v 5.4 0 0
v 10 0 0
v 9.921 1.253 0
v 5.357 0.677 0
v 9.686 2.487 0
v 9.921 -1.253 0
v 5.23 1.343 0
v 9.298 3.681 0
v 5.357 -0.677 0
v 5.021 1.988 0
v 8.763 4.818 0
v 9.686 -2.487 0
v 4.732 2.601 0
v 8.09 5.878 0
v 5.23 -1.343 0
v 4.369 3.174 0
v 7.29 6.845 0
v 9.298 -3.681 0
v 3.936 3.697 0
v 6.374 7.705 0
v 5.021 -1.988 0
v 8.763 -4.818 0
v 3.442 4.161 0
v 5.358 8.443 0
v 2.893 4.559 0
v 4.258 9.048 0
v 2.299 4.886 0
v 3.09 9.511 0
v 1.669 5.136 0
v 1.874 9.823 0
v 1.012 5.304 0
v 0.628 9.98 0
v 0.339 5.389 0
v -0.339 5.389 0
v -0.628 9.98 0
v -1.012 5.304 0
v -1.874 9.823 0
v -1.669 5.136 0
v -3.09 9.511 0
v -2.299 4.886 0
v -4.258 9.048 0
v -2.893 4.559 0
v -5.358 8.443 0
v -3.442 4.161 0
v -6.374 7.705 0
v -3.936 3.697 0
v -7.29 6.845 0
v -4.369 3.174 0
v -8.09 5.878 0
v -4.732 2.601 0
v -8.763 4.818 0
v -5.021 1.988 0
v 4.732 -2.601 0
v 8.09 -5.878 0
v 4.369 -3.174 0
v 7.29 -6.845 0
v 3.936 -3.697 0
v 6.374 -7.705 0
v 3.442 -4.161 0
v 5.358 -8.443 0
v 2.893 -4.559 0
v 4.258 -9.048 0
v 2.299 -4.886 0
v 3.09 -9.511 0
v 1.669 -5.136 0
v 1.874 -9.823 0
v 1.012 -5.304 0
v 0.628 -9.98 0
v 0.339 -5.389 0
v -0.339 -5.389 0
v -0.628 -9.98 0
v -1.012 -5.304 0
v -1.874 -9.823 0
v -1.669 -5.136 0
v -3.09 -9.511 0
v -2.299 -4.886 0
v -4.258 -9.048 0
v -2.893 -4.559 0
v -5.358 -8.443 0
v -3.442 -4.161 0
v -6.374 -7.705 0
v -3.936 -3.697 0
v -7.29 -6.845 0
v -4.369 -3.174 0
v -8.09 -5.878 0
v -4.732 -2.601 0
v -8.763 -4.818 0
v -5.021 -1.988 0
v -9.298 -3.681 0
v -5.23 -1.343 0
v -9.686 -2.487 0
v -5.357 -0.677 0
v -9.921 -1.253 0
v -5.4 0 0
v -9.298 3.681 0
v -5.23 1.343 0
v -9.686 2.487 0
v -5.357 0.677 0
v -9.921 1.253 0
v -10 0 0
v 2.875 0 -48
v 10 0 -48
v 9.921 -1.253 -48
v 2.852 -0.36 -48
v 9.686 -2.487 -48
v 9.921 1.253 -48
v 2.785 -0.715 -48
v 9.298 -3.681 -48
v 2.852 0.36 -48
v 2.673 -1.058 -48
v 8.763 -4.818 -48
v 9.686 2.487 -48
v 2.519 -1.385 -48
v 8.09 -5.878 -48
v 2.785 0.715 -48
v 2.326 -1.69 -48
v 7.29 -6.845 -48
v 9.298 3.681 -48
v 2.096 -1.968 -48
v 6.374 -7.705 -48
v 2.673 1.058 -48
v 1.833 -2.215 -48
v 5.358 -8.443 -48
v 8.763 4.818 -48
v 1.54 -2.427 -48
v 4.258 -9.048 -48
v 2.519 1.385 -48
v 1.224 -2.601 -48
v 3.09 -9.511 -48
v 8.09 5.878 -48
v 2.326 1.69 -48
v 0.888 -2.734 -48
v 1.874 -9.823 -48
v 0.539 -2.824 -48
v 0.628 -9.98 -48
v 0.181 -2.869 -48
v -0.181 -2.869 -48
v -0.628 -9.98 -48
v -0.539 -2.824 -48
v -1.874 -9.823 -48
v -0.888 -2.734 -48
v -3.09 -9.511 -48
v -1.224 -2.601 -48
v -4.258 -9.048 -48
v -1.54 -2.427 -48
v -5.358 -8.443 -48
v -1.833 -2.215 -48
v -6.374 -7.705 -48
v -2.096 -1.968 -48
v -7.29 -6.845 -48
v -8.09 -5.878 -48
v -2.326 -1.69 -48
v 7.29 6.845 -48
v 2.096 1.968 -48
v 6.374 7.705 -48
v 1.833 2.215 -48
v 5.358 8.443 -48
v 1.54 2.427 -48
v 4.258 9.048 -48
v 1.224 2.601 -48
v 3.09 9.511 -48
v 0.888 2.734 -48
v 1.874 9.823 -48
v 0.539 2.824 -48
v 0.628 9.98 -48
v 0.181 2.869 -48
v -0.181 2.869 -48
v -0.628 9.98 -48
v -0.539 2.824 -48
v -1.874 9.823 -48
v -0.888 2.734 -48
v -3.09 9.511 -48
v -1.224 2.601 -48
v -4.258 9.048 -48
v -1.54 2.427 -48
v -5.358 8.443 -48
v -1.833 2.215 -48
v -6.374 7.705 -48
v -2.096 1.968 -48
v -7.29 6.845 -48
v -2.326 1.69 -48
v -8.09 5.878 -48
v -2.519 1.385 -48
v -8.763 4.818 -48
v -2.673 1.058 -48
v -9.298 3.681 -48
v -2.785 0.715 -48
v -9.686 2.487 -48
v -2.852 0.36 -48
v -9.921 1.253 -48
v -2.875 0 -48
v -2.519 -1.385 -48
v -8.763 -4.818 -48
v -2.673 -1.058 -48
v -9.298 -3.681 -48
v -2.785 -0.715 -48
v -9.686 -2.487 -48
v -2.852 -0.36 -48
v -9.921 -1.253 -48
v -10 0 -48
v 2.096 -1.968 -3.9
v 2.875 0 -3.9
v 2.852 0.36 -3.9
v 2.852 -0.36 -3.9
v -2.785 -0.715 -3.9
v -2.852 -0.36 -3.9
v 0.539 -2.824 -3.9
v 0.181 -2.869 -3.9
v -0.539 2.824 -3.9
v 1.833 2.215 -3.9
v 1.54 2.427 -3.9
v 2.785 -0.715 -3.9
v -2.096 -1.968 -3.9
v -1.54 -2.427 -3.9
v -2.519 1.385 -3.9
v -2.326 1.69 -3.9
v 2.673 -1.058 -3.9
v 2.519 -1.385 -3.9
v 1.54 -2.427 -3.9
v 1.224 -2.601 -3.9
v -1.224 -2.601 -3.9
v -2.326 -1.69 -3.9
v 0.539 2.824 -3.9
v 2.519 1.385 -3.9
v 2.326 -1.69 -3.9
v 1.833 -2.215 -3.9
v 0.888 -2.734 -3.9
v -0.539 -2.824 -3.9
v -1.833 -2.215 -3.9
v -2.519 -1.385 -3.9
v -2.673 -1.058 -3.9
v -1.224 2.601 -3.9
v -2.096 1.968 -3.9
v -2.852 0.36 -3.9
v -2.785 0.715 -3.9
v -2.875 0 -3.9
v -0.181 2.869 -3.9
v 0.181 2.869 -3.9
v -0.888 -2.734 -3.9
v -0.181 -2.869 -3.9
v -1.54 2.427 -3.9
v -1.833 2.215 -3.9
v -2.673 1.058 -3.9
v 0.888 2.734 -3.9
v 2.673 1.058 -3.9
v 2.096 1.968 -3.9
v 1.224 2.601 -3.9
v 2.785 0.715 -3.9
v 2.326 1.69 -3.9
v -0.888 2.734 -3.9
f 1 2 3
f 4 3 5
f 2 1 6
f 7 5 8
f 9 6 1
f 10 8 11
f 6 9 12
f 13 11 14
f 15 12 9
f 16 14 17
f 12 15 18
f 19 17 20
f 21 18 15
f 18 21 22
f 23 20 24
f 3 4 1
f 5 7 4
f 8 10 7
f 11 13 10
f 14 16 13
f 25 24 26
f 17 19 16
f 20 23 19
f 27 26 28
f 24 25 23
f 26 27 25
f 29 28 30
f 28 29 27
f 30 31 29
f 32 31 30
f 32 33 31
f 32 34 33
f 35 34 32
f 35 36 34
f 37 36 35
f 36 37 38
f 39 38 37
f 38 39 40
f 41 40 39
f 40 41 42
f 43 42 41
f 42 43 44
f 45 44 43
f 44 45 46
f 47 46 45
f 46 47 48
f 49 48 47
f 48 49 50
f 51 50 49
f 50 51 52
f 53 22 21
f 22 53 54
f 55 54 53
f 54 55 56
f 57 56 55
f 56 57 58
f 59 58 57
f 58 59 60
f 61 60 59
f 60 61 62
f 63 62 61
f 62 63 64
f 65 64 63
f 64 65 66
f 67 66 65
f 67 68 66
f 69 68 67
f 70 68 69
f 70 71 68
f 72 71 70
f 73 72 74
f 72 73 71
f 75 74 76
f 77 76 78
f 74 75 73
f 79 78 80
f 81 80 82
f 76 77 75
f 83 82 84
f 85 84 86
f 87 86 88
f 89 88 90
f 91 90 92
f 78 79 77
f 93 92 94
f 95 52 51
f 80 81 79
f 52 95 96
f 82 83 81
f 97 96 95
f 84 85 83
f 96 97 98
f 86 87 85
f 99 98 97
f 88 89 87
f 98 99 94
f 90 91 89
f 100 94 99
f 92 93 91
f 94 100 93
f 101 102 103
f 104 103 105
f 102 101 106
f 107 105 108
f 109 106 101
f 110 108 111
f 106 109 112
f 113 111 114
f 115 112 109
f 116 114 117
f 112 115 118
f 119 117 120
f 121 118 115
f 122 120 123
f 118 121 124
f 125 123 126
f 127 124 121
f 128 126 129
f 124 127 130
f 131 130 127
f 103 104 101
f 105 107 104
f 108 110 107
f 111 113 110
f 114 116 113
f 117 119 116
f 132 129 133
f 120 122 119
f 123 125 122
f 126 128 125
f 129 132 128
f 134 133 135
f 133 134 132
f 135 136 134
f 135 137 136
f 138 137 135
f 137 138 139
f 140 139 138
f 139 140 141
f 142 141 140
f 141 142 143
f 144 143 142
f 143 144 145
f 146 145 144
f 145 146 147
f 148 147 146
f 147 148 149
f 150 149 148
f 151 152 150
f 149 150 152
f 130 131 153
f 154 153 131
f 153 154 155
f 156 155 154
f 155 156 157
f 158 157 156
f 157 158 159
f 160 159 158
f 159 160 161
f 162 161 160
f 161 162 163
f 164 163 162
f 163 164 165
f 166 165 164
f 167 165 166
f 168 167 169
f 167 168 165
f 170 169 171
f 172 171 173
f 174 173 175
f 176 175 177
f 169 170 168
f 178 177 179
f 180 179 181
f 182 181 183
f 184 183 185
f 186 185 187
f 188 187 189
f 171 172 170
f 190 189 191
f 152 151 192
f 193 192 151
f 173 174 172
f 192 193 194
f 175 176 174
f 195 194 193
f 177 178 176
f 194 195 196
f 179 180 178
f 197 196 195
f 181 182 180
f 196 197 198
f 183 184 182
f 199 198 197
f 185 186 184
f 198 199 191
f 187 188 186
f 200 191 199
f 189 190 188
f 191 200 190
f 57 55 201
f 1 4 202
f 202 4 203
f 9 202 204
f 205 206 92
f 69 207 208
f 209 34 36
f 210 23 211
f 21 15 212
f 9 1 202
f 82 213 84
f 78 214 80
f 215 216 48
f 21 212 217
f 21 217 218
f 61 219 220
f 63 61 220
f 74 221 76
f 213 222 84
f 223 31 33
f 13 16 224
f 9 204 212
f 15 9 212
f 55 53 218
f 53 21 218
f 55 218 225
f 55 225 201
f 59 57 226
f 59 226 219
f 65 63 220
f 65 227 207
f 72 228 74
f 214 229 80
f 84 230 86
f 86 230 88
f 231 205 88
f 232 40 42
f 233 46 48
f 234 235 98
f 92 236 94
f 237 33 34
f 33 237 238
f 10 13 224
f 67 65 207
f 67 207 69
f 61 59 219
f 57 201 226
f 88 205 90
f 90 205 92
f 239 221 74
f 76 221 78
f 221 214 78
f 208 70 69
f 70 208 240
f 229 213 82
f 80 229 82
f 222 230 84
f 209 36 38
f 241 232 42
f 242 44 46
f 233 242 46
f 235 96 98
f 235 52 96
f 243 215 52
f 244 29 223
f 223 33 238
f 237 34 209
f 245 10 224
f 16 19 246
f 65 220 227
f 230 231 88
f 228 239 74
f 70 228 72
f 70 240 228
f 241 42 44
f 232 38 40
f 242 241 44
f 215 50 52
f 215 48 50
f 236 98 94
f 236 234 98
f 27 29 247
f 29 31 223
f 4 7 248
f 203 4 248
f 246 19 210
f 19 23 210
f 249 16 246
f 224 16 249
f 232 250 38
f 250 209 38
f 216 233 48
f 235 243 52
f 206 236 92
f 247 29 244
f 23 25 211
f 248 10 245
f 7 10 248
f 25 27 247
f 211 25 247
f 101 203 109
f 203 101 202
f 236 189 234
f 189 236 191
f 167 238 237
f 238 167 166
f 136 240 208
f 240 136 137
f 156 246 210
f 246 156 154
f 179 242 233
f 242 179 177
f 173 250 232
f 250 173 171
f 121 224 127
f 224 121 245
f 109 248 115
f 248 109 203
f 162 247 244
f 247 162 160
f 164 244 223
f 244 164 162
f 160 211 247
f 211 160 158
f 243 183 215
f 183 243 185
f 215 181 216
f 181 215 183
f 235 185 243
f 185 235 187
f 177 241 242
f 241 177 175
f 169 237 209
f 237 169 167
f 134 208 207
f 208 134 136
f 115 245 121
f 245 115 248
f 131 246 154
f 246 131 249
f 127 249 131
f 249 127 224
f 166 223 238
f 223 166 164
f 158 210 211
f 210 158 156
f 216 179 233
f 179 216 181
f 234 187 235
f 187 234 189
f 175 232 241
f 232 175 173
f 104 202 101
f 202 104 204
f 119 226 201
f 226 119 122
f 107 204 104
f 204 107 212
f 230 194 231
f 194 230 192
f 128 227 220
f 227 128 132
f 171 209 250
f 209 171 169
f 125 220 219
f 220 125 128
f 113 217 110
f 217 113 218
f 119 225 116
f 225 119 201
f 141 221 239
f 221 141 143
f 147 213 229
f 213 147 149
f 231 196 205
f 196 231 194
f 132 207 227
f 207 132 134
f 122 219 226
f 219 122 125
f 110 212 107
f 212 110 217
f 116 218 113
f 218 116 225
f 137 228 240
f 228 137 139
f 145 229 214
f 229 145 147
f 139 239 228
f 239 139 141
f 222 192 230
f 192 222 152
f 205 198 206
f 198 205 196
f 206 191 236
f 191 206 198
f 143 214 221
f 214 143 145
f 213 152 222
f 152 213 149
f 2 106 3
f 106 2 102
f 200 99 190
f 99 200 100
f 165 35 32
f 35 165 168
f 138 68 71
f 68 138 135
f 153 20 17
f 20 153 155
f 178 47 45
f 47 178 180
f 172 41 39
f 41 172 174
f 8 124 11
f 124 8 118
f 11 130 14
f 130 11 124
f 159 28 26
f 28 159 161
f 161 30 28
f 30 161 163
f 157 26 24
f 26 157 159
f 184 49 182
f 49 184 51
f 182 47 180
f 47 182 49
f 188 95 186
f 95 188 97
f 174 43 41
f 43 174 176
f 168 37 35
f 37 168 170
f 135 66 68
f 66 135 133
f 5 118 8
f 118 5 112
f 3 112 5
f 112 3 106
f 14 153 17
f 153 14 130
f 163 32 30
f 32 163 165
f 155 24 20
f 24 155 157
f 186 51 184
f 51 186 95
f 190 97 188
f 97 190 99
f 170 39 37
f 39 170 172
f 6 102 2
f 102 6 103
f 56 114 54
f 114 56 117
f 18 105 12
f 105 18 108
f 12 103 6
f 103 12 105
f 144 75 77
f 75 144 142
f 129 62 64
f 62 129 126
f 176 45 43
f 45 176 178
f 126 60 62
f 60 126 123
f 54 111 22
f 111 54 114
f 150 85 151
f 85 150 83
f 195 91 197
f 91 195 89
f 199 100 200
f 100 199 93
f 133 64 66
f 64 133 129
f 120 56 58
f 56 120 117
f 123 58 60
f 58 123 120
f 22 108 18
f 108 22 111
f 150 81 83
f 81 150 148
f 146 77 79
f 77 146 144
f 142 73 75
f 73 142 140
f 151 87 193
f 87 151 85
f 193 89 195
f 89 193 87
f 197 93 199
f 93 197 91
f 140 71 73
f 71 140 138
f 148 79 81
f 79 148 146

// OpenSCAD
$fn = 50;


difference() {
	union() {
		translate(v = [0, 0, -48.0000000000]) {
			cylinder(h = 48, r = 10.0000000000);
		}
		cylinder(h = 0, r = 13.0000000000);
	}
	union() {
		translate(v = [0, 0, 0]) {
			rotate(a = [0, 0, 0]) {
				difference() {
					union() {
						#translate(v = [0, 0, -48.0000000000]) {
							cylinder(h = 48, r = 2.6000000000);
						}
						#translate(v = [0, 0, -3.9000000000]) {
							cylinder(h = 3.9000000000, r = 10.0000000000, r1 = 2.8750000000, r2 = 5.4000000000);
						}
						#translate(v = [0, 0, -48.0000000000]) {
							cylinder(h = 48, r = 2.8750000000);
						}
						#translate(v = [0, 0, -48.0000000000]) {
							cylinder(h = 48, r = 2.6000000000);
						}
					}
					union();
				}
			}
		}
	}
}
